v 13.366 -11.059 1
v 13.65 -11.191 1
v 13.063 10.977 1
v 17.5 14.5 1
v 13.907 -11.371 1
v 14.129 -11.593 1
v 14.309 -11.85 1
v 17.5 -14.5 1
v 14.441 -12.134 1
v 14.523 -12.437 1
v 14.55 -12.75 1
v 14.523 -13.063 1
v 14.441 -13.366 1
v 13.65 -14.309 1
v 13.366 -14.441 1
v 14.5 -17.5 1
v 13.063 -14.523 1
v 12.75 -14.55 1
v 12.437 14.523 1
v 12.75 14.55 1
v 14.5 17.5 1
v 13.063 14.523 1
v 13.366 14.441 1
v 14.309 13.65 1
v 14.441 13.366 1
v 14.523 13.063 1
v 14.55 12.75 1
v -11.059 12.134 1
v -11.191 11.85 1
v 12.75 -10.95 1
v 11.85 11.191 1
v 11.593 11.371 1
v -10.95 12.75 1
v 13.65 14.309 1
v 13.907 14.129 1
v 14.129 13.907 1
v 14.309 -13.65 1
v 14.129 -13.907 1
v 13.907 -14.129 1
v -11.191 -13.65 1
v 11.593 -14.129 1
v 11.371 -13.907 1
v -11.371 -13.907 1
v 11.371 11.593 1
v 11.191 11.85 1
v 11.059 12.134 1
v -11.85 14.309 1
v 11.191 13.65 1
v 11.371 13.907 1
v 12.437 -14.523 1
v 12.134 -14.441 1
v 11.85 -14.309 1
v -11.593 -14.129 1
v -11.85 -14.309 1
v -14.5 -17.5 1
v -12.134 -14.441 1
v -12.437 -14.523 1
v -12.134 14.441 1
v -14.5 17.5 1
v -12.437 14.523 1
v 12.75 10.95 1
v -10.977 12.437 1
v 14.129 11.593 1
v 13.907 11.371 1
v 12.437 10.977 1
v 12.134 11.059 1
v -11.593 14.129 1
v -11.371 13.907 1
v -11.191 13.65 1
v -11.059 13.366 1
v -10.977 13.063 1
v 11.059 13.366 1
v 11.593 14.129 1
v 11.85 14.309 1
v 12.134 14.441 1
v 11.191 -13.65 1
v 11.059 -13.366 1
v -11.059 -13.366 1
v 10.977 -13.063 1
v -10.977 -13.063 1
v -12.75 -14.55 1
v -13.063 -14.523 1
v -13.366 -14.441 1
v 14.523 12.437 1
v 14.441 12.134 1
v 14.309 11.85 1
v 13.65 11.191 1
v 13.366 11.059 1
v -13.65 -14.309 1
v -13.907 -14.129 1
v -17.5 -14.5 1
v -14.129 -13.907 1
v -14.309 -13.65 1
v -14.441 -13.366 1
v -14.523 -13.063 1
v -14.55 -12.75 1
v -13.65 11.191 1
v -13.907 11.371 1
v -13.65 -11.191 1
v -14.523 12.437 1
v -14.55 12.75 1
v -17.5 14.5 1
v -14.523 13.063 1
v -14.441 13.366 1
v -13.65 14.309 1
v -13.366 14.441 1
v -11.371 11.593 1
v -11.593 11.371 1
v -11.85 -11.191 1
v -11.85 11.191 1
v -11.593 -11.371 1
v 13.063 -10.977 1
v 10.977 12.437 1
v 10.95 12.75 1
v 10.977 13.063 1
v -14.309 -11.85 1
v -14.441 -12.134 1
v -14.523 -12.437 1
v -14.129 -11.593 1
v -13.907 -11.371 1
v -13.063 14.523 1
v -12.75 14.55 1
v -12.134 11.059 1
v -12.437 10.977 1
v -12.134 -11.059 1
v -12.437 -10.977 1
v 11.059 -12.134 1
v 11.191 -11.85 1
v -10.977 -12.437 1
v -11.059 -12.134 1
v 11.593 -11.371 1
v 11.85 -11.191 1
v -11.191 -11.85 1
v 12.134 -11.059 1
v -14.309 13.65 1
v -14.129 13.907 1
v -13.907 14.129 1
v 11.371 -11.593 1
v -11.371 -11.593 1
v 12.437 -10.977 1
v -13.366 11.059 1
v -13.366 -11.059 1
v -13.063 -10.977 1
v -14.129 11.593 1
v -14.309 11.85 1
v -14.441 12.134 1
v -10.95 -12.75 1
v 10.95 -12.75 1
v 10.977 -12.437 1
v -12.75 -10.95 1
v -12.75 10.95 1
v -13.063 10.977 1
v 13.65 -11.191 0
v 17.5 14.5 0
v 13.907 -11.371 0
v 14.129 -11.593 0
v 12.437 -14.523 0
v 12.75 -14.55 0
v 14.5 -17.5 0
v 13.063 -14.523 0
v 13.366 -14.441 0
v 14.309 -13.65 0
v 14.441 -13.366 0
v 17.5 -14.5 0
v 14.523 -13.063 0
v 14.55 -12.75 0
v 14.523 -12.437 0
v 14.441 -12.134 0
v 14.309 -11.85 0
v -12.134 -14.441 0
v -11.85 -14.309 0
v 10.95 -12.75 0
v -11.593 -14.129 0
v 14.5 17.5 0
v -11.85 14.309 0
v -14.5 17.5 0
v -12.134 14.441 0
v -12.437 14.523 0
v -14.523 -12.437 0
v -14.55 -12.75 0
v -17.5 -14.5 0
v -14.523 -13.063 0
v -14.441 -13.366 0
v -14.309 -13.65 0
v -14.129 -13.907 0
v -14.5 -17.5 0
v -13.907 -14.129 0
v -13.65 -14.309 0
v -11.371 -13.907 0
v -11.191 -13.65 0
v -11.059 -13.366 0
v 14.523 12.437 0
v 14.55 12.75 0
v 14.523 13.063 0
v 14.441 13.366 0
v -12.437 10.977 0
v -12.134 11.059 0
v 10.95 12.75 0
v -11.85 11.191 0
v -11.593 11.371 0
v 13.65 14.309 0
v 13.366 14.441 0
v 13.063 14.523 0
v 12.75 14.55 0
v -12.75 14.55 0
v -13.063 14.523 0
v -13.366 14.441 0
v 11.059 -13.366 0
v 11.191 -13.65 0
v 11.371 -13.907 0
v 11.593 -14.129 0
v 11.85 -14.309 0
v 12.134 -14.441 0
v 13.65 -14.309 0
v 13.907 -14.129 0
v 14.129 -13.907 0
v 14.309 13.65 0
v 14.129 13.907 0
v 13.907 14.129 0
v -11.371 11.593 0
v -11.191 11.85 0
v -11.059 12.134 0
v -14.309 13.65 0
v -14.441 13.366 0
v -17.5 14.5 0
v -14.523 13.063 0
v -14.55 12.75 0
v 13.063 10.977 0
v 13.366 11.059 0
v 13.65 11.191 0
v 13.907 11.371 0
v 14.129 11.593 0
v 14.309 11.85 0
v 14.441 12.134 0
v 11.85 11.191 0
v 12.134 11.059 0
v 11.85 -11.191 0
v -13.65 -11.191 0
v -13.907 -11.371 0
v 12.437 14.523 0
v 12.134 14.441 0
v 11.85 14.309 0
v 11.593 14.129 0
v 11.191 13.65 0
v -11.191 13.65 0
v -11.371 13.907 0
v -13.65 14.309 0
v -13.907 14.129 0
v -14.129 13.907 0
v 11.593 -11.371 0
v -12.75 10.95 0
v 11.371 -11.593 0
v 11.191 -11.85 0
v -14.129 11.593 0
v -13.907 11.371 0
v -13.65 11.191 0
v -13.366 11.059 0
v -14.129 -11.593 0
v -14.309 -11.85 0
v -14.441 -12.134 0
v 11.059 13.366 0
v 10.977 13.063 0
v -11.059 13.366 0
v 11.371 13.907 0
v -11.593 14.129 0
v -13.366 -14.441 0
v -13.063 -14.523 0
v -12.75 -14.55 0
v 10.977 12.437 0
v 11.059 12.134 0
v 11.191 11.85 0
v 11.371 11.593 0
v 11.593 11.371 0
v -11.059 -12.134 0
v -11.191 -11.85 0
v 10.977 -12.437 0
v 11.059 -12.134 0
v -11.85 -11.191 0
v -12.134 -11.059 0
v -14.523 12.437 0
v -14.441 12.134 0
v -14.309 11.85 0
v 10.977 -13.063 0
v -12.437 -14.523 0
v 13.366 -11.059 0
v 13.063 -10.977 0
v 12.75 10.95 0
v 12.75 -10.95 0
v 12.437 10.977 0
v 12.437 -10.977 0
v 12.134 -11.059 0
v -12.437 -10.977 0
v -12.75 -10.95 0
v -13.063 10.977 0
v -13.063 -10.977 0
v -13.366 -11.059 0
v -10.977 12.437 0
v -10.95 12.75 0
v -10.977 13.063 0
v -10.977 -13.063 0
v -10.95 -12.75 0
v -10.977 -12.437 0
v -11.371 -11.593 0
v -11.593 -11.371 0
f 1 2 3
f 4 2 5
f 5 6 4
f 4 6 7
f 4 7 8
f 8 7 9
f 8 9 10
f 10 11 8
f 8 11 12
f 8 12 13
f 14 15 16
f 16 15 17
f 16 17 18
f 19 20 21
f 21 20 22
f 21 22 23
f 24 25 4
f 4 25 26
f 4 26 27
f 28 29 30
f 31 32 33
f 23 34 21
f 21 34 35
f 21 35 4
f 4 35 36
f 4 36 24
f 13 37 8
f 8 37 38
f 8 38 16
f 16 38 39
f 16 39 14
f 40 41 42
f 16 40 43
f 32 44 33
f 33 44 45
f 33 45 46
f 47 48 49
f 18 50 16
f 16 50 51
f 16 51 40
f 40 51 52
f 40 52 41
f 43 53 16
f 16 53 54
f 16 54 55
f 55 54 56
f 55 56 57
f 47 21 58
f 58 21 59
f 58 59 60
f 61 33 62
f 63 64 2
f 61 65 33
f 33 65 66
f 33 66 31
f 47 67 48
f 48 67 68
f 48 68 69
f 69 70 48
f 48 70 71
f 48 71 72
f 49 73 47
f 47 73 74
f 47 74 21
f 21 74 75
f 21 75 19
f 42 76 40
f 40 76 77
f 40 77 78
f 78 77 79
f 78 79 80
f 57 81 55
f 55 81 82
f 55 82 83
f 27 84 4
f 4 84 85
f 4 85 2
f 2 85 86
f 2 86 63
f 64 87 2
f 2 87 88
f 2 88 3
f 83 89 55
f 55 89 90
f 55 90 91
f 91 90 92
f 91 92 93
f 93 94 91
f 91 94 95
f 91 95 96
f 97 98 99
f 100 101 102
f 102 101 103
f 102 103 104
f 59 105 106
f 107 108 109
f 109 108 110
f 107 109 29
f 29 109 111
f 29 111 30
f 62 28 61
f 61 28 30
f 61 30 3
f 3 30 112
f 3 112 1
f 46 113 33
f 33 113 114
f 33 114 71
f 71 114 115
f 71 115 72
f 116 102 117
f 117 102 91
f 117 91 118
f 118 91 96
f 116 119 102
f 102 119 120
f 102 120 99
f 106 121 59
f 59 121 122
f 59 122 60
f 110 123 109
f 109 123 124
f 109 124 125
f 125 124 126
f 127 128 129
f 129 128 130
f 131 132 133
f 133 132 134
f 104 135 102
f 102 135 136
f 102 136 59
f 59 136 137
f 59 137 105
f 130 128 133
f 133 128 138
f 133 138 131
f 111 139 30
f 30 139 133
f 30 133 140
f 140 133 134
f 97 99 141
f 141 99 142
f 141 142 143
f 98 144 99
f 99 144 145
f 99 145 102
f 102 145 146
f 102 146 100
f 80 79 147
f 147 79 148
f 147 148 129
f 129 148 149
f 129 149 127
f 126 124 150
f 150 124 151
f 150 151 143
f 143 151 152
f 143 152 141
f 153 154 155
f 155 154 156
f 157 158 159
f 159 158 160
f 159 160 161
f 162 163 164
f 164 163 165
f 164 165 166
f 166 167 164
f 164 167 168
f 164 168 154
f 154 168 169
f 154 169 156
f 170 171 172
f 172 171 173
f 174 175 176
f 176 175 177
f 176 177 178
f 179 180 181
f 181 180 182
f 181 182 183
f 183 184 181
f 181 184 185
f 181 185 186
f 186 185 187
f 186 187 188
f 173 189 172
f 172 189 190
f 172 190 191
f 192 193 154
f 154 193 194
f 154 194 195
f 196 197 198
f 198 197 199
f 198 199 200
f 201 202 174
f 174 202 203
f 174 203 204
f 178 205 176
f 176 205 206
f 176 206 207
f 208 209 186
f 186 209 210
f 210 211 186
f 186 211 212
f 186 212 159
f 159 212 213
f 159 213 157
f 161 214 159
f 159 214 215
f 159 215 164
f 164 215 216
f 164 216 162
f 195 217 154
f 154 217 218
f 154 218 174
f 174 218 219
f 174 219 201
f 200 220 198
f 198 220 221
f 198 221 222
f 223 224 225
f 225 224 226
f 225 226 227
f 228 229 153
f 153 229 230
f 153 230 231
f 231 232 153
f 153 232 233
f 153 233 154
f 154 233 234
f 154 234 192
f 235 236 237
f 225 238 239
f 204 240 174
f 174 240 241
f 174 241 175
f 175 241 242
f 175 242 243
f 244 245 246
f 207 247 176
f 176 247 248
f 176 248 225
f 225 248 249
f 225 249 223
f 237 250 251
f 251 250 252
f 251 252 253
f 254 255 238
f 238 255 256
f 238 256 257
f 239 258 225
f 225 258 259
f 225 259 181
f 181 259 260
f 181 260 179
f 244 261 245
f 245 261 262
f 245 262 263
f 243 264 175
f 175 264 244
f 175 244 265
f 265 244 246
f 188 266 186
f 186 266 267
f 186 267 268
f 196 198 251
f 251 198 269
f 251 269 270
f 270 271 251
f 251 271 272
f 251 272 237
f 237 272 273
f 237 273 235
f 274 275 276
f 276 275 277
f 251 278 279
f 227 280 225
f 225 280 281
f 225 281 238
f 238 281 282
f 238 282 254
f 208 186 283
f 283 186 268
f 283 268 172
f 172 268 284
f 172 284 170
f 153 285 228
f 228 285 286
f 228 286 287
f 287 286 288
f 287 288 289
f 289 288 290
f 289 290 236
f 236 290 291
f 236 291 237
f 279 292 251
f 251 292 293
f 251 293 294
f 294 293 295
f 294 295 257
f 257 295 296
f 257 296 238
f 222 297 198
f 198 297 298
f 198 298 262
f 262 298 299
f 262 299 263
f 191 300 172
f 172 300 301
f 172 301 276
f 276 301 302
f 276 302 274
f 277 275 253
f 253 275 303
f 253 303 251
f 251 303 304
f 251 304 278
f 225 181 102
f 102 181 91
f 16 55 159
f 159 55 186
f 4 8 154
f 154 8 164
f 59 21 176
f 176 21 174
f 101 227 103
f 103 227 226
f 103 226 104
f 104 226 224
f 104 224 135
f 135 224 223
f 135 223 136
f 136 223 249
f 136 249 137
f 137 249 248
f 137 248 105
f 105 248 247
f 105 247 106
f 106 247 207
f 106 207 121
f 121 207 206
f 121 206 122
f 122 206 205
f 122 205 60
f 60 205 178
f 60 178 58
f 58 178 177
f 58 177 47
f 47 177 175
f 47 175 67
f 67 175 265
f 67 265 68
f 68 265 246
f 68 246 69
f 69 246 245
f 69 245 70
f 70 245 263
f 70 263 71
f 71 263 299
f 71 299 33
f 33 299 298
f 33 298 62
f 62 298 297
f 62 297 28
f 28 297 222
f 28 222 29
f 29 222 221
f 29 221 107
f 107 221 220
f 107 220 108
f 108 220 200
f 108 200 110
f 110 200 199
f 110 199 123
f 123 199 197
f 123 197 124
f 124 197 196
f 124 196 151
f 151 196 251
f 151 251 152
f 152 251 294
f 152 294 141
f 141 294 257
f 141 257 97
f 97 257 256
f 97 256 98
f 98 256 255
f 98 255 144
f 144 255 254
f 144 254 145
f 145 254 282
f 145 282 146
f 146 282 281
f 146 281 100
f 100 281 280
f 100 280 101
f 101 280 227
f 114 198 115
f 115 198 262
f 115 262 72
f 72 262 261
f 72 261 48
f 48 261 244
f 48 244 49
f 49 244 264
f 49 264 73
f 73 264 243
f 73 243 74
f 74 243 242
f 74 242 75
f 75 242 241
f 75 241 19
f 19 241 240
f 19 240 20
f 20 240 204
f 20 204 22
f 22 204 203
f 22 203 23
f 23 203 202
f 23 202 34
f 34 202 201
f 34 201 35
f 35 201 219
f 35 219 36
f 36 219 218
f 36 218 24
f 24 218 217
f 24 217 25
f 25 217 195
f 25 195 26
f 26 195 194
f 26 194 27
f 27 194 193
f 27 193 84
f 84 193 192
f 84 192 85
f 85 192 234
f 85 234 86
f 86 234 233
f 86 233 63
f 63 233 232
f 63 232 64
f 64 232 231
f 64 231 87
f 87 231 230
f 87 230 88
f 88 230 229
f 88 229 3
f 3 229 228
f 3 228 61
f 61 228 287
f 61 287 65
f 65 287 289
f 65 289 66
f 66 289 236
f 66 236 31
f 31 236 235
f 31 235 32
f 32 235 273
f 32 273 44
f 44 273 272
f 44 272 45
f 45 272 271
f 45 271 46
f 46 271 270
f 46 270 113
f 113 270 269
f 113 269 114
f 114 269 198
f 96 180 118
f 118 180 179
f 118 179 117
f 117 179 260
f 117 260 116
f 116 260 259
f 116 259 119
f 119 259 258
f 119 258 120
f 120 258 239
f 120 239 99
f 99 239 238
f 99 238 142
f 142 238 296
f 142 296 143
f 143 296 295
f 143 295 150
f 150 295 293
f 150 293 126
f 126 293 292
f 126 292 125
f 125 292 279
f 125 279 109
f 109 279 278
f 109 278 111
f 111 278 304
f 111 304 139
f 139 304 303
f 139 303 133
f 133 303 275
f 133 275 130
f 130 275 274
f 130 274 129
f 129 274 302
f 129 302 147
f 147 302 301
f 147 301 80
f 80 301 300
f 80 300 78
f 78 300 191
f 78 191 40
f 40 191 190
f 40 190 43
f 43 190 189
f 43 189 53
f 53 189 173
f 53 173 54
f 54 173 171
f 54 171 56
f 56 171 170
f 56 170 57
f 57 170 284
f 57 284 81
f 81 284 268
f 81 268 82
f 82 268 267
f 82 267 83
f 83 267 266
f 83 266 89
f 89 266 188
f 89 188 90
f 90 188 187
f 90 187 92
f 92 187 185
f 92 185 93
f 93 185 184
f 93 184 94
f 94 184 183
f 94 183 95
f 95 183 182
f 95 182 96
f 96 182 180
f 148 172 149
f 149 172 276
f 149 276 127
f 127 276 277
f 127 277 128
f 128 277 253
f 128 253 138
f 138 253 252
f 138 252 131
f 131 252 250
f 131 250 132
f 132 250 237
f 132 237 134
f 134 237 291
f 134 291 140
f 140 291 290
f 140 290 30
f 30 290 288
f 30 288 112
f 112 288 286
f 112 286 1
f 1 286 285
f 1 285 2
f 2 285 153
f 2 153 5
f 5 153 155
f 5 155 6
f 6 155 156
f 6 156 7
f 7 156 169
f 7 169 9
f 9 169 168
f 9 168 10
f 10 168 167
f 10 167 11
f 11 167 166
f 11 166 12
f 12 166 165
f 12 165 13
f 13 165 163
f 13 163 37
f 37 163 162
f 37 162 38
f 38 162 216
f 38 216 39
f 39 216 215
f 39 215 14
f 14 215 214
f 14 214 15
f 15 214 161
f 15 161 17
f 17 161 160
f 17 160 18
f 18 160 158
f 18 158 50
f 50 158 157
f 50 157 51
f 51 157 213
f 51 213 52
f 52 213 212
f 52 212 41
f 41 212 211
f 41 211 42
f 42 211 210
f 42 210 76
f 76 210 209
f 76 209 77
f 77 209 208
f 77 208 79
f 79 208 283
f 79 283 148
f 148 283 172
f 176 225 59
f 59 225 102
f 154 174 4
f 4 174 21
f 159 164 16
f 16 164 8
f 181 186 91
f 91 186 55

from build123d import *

# Parameters (mm, degrees)
SKETCH1_W      = 35
SKETCH1_H      = 35
SKETCH1_R      = 1.8
EXTRUDE1_DEPTH = 1
CHAMFER1_SIZE  = 3


with BuildPart() as part:
    # Sketch1 → Extrude1 (new body)
    with BuildSketch(Plane.XY):
        Rectangle(SKETCH1_W, SKETCH1_H)
        with Locations((-12.75, 12.75)):
            Circle(SKETCH1_R, mode=Mode.SUBTRACT)
        with Locations((12.75, 12.75)):
            Circle(SKETCH1_R, mode=Mode.SUBTRACT)
        with Locations((-12.75, -12.75)):
            Circle(SKETCH1_R, mode=Mode.SUBTRACT)
        with Locations((12.75, -12.75)):
            Circle(SKETCH1_R, mode=Mode.SUBTRACT)
    extrude(amount=EXTRUDE1_DEPTH)

    # Chamfer1
    chamfer1_edges = [part.edges().sort_by_distance(p)[0] for p in [
        (-17.5, 17.5, 0.5),
        (17.5, 17.5, 0.5),
        (17.5, -17.5, 0.5),
        (-17.5, -17.5, 0.5),
    ]]
    chamfer(chamfer1_edges, length=CHAMFER1_SIZE)


solid = part.part
